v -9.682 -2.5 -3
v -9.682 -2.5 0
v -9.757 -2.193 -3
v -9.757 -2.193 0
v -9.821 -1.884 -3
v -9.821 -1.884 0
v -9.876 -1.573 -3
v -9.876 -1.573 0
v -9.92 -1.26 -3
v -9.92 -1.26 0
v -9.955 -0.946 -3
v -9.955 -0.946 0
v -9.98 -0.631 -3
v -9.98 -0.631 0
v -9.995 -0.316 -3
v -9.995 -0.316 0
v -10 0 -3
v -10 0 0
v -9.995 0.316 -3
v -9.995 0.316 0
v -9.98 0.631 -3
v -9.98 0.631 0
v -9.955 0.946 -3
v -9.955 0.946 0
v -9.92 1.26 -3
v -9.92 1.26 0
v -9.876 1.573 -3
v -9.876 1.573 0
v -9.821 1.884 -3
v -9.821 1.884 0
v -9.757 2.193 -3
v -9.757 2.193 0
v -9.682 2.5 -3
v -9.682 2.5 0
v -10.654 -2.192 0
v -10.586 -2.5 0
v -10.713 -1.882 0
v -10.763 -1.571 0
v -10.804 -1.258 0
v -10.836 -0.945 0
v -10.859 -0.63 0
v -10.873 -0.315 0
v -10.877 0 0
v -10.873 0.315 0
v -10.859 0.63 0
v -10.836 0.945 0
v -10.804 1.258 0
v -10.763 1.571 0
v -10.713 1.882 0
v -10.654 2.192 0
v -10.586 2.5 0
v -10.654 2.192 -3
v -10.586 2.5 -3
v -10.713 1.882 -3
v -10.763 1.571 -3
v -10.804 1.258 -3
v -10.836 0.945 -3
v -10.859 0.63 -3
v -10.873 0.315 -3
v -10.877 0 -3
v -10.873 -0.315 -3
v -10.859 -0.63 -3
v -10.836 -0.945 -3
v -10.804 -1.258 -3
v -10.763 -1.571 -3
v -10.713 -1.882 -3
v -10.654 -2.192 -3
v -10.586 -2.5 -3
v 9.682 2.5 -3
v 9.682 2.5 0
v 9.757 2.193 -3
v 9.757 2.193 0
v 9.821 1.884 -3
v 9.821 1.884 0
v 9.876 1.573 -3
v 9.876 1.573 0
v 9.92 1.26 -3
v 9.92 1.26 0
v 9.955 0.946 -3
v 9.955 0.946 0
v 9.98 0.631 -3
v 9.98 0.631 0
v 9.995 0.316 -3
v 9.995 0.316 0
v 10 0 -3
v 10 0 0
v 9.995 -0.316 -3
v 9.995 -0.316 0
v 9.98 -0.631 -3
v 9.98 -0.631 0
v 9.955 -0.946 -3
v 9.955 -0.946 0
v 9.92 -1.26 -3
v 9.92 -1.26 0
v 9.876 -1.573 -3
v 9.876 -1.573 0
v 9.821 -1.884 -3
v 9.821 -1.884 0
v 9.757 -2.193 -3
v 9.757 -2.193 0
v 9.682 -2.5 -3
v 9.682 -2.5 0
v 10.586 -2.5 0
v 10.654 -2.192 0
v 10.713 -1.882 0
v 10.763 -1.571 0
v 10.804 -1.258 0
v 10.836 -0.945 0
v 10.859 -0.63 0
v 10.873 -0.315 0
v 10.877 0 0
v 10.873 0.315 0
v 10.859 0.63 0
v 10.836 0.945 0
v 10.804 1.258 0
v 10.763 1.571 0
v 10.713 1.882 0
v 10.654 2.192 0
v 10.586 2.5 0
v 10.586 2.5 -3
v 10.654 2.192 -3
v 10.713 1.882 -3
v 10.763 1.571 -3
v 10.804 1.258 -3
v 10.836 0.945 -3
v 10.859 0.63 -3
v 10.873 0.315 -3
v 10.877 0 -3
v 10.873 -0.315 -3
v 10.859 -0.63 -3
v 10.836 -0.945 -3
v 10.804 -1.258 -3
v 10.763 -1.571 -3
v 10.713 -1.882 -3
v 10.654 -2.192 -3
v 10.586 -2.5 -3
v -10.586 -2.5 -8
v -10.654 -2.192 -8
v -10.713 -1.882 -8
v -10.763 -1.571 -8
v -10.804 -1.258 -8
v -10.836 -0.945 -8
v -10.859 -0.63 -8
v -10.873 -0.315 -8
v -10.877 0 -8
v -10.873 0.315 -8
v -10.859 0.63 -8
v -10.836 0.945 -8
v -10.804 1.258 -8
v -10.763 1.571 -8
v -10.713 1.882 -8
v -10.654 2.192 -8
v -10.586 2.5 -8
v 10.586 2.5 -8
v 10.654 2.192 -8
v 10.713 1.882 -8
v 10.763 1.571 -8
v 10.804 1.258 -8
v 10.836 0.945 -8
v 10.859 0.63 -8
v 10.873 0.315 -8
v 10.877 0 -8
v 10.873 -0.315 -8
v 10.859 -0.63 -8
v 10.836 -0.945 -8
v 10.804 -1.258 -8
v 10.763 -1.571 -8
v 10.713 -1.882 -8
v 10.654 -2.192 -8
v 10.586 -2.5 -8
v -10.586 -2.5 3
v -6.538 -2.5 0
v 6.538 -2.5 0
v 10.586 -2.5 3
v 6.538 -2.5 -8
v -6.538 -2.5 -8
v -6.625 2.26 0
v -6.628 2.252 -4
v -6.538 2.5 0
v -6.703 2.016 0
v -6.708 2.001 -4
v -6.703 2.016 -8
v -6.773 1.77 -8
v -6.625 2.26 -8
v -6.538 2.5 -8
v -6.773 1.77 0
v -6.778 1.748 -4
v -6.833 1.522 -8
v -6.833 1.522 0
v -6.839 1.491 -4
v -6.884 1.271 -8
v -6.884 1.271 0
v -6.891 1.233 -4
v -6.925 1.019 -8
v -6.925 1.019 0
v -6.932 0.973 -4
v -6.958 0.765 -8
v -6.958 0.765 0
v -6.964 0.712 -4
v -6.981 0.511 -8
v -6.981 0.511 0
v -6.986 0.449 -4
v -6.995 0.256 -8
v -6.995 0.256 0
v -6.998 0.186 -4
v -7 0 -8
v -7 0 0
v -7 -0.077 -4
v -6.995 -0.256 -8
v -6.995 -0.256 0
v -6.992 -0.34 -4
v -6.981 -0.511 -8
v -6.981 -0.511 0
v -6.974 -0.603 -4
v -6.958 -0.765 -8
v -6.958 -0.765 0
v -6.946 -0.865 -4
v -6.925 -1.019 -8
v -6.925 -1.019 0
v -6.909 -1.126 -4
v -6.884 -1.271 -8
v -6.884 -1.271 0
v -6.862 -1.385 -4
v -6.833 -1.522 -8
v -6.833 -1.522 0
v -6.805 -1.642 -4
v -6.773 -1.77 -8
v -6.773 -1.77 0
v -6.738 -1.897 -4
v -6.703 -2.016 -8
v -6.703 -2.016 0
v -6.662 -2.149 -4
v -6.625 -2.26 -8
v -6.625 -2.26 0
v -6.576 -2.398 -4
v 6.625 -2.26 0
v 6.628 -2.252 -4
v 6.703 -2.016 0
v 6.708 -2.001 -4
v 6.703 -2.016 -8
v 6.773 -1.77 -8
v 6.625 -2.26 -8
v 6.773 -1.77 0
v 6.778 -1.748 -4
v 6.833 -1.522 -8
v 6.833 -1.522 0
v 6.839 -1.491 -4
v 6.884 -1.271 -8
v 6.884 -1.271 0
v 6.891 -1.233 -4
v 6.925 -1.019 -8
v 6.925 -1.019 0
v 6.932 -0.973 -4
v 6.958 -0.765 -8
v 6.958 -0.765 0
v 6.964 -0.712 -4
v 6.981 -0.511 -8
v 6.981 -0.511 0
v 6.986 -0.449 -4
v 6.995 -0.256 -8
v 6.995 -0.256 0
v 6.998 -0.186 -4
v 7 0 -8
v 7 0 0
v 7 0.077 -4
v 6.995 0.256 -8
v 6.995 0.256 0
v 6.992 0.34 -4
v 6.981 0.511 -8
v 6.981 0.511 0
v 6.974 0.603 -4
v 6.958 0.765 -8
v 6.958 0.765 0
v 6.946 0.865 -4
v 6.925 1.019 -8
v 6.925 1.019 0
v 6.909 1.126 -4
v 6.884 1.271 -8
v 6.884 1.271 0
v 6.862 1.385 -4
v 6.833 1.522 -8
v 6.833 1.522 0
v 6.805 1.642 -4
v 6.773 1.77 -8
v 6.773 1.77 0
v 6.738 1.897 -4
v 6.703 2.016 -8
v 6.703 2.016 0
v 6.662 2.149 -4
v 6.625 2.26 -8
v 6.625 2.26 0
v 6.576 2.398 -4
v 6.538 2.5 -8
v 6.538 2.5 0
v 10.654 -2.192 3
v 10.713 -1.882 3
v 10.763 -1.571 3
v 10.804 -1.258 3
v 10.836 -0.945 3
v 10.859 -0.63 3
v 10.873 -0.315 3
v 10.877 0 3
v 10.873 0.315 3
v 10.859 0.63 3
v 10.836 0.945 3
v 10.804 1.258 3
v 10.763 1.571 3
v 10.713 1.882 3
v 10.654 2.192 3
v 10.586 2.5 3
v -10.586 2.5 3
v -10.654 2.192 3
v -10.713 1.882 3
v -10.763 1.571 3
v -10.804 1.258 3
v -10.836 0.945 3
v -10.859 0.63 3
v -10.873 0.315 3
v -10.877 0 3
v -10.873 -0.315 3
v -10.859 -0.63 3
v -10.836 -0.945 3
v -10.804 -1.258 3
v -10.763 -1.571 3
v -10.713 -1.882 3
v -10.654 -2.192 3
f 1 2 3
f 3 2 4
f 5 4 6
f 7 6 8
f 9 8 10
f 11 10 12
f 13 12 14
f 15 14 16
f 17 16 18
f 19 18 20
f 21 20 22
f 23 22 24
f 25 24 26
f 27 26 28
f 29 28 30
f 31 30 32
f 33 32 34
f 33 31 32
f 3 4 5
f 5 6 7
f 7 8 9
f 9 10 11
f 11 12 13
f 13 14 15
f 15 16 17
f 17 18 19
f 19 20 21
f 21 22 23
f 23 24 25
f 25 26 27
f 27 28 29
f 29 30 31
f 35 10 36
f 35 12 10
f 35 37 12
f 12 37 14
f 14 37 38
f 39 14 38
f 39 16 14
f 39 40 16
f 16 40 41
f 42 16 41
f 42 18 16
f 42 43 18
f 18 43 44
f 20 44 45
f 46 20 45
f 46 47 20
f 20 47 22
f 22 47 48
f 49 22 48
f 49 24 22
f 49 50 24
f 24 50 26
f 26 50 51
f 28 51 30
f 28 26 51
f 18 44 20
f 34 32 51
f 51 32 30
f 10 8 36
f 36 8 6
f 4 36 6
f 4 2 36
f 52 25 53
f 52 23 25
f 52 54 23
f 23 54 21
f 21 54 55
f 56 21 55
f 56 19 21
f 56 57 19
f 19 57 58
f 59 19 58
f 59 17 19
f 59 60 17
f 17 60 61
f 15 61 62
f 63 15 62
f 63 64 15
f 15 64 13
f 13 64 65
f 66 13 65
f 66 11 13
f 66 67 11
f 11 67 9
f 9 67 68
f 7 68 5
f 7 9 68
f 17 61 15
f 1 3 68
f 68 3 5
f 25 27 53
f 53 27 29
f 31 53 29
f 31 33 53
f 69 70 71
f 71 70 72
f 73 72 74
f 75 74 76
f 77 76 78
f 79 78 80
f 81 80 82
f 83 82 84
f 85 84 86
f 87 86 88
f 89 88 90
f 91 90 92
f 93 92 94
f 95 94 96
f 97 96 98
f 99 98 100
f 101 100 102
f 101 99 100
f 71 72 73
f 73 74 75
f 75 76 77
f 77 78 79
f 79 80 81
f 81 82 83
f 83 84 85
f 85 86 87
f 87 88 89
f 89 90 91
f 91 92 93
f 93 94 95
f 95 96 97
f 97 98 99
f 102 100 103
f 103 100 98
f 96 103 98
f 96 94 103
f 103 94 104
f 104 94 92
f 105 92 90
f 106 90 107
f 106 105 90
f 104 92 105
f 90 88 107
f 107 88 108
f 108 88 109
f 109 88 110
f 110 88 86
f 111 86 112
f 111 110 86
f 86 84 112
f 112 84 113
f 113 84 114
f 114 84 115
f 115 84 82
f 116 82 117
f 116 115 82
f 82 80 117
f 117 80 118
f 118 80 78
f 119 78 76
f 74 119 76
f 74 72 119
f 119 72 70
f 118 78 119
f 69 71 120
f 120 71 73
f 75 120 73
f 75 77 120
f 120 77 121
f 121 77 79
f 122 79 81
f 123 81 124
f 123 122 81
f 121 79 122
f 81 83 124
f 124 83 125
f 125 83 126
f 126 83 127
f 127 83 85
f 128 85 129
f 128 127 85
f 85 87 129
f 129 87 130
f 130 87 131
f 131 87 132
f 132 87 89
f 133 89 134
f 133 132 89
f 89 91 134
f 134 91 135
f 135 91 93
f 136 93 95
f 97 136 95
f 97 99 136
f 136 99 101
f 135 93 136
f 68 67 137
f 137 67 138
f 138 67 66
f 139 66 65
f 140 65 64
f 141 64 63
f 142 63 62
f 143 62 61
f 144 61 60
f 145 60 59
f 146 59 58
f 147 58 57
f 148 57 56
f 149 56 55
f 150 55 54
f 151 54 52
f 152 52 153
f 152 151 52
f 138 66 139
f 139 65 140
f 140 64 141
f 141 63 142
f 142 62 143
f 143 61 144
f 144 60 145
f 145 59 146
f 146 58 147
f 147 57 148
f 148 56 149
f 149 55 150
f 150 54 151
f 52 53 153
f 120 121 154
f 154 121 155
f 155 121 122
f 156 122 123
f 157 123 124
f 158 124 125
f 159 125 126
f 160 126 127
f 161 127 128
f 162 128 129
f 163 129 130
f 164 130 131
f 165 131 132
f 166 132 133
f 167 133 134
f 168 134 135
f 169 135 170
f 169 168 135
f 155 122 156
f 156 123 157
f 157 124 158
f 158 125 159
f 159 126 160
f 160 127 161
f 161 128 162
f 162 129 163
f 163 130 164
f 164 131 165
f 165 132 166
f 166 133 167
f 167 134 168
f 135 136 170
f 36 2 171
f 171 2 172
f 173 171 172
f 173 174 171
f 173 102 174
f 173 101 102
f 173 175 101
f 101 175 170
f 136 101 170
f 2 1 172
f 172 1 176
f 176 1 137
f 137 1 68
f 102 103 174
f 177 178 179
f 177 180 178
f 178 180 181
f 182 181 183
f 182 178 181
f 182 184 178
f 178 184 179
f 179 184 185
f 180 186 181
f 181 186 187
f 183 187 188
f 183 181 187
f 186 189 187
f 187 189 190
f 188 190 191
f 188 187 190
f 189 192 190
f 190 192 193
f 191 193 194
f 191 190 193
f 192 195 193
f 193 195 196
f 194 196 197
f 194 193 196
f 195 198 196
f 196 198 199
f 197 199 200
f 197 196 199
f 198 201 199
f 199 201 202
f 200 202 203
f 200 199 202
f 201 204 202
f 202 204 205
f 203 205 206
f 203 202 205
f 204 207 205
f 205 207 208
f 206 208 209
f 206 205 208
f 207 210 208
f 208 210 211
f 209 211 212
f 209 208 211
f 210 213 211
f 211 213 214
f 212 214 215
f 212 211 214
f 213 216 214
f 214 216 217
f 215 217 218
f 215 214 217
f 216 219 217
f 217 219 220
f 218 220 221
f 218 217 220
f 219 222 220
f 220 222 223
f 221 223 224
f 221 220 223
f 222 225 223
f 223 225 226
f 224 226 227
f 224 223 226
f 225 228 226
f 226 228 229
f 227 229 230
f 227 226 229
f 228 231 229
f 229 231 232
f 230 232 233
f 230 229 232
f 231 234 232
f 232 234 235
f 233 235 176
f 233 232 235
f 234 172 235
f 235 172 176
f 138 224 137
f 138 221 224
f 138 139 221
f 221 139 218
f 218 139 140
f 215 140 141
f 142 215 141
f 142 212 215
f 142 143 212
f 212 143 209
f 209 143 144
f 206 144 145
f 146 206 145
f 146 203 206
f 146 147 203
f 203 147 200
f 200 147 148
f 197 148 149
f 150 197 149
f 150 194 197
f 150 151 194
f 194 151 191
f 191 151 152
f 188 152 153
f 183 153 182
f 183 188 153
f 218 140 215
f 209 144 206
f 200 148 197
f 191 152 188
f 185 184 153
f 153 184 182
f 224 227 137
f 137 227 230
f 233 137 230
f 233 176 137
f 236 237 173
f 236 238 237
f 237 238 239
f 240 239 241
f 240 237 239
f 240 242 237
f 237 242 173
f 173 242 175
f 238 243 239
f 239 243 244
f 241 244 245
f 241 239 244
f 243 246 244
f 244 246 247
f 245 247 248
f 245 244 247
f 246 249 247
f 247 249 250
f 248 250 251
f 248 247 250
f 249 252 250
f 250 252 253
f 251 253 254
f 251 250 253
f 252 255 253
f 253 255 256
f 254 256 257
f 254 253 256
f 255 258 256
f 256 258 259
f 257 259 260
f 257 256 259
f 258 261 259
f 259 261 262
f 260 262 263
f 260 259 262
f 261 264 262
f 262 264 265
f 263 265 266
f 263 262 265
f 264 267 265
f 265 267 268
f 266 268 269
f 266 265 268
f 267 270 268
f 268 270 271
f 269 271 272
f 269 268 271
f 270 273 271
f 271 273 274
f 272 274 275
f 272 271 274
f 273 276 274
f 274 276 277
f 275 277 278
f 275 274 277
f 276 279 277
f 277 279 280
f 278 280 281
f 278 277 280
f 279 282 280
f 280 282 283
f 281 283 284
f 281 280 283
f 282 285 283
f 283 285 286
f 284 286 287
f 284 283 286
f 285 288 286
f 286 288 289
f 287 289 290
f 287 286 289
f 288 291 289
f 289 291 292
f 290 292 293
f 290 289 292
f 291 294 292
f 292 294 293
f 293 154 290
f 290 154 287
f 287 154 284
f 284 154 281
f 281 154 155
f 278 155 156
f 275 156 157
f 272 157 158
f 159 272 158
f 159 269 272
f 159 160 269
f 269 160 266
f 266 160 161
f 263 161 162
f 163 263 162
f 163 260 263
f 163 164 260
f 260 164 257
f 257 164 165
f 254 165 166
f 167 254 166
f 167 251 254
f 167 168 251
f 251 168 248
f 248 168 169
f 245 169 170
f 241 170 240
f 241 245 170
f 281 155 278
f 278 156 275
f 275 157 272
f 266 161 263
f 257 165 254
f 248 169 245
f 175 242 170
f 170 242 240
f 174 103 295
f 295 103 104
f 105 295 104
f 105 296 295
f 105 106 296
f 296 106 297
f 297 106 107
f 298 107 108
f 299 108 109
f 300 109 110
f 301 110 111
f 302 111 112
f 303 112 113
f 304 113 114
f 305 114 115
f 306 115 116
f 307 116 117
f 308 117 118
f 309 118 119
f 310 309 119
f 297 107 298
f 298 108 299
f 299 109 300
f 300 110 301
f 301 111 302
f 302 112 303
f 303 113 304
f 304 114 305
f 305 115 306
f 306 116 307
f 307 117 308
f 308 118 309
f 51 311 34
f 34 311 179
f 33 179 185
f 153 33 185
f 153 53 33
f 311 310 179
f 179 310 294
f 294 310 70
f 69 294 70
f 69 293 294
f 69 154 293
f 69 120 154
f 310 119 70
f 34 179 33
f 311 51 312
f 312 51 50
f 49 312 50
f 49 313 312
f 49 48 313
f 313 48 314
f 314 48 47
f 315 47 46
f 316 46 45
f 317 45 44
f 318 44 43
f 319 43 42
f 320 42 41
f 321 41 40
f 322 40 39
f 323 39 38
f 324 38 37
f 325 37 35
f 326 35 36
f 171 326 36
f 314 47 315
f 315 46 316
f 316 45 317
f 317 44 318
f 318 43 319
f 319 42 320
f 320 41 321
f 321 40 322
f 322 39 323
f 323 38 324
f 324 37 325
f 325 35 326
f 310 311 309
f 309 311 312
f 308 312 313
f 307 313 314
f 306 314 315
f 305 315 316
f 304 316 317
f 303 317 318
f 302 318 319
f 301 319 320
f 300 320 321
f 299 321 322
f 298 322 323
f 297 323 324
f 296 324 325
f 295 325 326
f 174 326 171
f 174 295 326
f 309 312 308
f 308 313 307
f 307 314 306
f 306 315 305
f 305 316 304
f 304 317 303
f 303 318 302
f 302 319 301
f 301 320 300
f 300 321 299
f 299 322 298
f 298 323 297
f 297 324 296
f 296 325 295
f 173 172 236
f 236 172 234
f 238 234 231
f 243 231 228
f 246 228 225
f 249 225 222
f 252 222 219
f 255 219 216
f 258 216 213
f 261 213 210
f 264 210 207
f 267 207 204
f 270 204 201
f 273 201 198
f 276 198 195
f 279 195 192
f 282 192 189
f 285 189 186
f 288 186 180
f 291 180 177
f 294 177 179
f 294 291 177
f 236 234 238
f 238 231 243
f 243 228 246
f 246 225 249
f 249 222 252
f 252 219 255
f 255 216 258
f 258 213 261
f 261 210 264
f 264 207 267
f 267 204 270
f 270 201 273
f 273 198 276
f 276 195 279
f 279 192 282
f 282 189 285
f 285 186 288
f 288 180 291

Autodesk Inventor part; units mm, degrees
ref_plane "YZ Plane" through (0, 0, 0) normal (1, 0, 0) x (0, 1, 0)
ref_plane "XZ Plane" through (0, 0, 0) normal (0, 1, 0) x (-1, 0, 0)
ref_plane "XY Plane" through (0, 0, 0) normal (0, 0, 1) x (1, 0, 0)
sketch "Эскиз1" plane through (0, 0, 0) normal (0, 0, 1) x (1, 0, 0)
  line L0 (-10.7121, -2.5) -> (10.5863, -2.5)
  line L1 (10.5863, 2.5) -> (-10.5863, 2.5)
  line L2 (-10.6663, -2.1333) -> (10.6663, 2.1333) construction
  line L3 (10.6663, -2.1333) -> (-10.6663, 2.1333) construction
  arc A0 (6.5383, -2.5) -> (6.5383, 2.5) centre (0, 0) ccw
  line L4 (0, 2.5) -> (0, -2.5) construction
  arc A1 (6.5383, -2.5) -> (6.5383, 2.5) centre (0, 0) ccw
  arc A2 (6.5383, -2.5) -> (6.5383, 2.5) centre (0, 0) ccw
  arc A3 (-6.5383, 2.5) -> (-6.5383, -2.5) centre (0, 0) ccw
  arc A4 (6.5383, -2.5) -> (6.5383, 2.5) centre (0, 0) ccw
  arc A5 (-9.6825, 2.5) -> (-9.6825, -2.5) centre (0, 0) ccw
  arc A6 (9.6825, -2.5) -> (9.6825, 2.5) centre (0, 0) ccw
  arc A7 (-10.5863, 2.5) -> (-10.5863, -2.5) centre (0, 0) ccw
  arc A8 (10.5863, -2.5) -> (10.5863, 2.5) centre (0, 0) ccw
extrude "Выдавливание1" add sketch "Эскиз1" along normal blind 3
extrude "Выдавливание2" add sketch "Эскиз1" against normal blind 8 contours A7 L1 A5 L0 | A5 L1 A3 L0 | A0 L1 A6 L0 | A6 L1 A8 L0
extrude "Выдавливание3" cut sketch "Эскиз1" against normal blind 3 contours A7 L1 A5 L0 | A6 L1 A8 L0
properties part number "move male"
